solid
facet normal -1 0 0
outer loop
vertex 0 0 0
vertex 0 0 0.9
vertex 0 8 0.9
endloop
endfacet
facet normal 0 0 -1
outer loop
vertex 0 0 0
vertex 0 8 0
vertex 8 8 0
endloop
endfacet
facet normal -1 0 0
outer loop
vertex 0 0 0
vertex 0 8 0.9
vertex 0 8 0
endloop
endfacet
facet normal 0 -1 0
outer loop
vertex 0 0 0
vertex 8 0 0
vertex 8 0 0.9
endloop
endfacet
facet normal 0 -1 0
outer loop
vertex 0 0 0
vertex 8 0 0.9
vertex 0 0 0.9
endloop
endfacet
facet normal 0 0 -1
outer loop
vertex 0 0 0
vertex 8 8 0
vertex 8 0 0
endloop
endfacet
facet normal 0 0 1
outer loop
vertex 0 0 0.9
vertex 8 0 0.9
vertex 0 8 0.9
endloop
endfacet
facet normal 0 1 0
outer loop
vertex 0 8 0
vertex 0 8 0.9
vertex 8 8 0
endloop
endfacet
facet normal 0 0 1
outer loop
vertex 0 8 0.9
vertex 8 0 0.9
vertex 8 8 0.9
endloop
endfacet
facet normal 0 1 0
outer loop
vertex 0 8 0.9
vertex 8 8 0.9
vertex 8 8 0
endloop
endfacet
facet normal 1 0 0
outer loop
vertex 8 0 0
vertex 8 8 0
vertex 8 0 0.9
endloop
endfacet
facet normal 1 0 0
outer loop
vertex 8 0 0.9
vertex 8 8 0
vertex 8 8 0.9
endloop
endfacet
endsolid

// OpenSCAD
/* Warning, this is a very basic generator with a lot of approximation 
input data : [VQFN, 8HX, 8x8x0.9mm, 52, , B, C04-00430B]
generated by com.zoubworld.electronics.cad.model3d.Basic
Date : Sun Feb 15 10:50:48 CET 2026
*/

//body
color("black")
translate([0,0,0])
cube([8.0,8.0,0.9], center=false);
